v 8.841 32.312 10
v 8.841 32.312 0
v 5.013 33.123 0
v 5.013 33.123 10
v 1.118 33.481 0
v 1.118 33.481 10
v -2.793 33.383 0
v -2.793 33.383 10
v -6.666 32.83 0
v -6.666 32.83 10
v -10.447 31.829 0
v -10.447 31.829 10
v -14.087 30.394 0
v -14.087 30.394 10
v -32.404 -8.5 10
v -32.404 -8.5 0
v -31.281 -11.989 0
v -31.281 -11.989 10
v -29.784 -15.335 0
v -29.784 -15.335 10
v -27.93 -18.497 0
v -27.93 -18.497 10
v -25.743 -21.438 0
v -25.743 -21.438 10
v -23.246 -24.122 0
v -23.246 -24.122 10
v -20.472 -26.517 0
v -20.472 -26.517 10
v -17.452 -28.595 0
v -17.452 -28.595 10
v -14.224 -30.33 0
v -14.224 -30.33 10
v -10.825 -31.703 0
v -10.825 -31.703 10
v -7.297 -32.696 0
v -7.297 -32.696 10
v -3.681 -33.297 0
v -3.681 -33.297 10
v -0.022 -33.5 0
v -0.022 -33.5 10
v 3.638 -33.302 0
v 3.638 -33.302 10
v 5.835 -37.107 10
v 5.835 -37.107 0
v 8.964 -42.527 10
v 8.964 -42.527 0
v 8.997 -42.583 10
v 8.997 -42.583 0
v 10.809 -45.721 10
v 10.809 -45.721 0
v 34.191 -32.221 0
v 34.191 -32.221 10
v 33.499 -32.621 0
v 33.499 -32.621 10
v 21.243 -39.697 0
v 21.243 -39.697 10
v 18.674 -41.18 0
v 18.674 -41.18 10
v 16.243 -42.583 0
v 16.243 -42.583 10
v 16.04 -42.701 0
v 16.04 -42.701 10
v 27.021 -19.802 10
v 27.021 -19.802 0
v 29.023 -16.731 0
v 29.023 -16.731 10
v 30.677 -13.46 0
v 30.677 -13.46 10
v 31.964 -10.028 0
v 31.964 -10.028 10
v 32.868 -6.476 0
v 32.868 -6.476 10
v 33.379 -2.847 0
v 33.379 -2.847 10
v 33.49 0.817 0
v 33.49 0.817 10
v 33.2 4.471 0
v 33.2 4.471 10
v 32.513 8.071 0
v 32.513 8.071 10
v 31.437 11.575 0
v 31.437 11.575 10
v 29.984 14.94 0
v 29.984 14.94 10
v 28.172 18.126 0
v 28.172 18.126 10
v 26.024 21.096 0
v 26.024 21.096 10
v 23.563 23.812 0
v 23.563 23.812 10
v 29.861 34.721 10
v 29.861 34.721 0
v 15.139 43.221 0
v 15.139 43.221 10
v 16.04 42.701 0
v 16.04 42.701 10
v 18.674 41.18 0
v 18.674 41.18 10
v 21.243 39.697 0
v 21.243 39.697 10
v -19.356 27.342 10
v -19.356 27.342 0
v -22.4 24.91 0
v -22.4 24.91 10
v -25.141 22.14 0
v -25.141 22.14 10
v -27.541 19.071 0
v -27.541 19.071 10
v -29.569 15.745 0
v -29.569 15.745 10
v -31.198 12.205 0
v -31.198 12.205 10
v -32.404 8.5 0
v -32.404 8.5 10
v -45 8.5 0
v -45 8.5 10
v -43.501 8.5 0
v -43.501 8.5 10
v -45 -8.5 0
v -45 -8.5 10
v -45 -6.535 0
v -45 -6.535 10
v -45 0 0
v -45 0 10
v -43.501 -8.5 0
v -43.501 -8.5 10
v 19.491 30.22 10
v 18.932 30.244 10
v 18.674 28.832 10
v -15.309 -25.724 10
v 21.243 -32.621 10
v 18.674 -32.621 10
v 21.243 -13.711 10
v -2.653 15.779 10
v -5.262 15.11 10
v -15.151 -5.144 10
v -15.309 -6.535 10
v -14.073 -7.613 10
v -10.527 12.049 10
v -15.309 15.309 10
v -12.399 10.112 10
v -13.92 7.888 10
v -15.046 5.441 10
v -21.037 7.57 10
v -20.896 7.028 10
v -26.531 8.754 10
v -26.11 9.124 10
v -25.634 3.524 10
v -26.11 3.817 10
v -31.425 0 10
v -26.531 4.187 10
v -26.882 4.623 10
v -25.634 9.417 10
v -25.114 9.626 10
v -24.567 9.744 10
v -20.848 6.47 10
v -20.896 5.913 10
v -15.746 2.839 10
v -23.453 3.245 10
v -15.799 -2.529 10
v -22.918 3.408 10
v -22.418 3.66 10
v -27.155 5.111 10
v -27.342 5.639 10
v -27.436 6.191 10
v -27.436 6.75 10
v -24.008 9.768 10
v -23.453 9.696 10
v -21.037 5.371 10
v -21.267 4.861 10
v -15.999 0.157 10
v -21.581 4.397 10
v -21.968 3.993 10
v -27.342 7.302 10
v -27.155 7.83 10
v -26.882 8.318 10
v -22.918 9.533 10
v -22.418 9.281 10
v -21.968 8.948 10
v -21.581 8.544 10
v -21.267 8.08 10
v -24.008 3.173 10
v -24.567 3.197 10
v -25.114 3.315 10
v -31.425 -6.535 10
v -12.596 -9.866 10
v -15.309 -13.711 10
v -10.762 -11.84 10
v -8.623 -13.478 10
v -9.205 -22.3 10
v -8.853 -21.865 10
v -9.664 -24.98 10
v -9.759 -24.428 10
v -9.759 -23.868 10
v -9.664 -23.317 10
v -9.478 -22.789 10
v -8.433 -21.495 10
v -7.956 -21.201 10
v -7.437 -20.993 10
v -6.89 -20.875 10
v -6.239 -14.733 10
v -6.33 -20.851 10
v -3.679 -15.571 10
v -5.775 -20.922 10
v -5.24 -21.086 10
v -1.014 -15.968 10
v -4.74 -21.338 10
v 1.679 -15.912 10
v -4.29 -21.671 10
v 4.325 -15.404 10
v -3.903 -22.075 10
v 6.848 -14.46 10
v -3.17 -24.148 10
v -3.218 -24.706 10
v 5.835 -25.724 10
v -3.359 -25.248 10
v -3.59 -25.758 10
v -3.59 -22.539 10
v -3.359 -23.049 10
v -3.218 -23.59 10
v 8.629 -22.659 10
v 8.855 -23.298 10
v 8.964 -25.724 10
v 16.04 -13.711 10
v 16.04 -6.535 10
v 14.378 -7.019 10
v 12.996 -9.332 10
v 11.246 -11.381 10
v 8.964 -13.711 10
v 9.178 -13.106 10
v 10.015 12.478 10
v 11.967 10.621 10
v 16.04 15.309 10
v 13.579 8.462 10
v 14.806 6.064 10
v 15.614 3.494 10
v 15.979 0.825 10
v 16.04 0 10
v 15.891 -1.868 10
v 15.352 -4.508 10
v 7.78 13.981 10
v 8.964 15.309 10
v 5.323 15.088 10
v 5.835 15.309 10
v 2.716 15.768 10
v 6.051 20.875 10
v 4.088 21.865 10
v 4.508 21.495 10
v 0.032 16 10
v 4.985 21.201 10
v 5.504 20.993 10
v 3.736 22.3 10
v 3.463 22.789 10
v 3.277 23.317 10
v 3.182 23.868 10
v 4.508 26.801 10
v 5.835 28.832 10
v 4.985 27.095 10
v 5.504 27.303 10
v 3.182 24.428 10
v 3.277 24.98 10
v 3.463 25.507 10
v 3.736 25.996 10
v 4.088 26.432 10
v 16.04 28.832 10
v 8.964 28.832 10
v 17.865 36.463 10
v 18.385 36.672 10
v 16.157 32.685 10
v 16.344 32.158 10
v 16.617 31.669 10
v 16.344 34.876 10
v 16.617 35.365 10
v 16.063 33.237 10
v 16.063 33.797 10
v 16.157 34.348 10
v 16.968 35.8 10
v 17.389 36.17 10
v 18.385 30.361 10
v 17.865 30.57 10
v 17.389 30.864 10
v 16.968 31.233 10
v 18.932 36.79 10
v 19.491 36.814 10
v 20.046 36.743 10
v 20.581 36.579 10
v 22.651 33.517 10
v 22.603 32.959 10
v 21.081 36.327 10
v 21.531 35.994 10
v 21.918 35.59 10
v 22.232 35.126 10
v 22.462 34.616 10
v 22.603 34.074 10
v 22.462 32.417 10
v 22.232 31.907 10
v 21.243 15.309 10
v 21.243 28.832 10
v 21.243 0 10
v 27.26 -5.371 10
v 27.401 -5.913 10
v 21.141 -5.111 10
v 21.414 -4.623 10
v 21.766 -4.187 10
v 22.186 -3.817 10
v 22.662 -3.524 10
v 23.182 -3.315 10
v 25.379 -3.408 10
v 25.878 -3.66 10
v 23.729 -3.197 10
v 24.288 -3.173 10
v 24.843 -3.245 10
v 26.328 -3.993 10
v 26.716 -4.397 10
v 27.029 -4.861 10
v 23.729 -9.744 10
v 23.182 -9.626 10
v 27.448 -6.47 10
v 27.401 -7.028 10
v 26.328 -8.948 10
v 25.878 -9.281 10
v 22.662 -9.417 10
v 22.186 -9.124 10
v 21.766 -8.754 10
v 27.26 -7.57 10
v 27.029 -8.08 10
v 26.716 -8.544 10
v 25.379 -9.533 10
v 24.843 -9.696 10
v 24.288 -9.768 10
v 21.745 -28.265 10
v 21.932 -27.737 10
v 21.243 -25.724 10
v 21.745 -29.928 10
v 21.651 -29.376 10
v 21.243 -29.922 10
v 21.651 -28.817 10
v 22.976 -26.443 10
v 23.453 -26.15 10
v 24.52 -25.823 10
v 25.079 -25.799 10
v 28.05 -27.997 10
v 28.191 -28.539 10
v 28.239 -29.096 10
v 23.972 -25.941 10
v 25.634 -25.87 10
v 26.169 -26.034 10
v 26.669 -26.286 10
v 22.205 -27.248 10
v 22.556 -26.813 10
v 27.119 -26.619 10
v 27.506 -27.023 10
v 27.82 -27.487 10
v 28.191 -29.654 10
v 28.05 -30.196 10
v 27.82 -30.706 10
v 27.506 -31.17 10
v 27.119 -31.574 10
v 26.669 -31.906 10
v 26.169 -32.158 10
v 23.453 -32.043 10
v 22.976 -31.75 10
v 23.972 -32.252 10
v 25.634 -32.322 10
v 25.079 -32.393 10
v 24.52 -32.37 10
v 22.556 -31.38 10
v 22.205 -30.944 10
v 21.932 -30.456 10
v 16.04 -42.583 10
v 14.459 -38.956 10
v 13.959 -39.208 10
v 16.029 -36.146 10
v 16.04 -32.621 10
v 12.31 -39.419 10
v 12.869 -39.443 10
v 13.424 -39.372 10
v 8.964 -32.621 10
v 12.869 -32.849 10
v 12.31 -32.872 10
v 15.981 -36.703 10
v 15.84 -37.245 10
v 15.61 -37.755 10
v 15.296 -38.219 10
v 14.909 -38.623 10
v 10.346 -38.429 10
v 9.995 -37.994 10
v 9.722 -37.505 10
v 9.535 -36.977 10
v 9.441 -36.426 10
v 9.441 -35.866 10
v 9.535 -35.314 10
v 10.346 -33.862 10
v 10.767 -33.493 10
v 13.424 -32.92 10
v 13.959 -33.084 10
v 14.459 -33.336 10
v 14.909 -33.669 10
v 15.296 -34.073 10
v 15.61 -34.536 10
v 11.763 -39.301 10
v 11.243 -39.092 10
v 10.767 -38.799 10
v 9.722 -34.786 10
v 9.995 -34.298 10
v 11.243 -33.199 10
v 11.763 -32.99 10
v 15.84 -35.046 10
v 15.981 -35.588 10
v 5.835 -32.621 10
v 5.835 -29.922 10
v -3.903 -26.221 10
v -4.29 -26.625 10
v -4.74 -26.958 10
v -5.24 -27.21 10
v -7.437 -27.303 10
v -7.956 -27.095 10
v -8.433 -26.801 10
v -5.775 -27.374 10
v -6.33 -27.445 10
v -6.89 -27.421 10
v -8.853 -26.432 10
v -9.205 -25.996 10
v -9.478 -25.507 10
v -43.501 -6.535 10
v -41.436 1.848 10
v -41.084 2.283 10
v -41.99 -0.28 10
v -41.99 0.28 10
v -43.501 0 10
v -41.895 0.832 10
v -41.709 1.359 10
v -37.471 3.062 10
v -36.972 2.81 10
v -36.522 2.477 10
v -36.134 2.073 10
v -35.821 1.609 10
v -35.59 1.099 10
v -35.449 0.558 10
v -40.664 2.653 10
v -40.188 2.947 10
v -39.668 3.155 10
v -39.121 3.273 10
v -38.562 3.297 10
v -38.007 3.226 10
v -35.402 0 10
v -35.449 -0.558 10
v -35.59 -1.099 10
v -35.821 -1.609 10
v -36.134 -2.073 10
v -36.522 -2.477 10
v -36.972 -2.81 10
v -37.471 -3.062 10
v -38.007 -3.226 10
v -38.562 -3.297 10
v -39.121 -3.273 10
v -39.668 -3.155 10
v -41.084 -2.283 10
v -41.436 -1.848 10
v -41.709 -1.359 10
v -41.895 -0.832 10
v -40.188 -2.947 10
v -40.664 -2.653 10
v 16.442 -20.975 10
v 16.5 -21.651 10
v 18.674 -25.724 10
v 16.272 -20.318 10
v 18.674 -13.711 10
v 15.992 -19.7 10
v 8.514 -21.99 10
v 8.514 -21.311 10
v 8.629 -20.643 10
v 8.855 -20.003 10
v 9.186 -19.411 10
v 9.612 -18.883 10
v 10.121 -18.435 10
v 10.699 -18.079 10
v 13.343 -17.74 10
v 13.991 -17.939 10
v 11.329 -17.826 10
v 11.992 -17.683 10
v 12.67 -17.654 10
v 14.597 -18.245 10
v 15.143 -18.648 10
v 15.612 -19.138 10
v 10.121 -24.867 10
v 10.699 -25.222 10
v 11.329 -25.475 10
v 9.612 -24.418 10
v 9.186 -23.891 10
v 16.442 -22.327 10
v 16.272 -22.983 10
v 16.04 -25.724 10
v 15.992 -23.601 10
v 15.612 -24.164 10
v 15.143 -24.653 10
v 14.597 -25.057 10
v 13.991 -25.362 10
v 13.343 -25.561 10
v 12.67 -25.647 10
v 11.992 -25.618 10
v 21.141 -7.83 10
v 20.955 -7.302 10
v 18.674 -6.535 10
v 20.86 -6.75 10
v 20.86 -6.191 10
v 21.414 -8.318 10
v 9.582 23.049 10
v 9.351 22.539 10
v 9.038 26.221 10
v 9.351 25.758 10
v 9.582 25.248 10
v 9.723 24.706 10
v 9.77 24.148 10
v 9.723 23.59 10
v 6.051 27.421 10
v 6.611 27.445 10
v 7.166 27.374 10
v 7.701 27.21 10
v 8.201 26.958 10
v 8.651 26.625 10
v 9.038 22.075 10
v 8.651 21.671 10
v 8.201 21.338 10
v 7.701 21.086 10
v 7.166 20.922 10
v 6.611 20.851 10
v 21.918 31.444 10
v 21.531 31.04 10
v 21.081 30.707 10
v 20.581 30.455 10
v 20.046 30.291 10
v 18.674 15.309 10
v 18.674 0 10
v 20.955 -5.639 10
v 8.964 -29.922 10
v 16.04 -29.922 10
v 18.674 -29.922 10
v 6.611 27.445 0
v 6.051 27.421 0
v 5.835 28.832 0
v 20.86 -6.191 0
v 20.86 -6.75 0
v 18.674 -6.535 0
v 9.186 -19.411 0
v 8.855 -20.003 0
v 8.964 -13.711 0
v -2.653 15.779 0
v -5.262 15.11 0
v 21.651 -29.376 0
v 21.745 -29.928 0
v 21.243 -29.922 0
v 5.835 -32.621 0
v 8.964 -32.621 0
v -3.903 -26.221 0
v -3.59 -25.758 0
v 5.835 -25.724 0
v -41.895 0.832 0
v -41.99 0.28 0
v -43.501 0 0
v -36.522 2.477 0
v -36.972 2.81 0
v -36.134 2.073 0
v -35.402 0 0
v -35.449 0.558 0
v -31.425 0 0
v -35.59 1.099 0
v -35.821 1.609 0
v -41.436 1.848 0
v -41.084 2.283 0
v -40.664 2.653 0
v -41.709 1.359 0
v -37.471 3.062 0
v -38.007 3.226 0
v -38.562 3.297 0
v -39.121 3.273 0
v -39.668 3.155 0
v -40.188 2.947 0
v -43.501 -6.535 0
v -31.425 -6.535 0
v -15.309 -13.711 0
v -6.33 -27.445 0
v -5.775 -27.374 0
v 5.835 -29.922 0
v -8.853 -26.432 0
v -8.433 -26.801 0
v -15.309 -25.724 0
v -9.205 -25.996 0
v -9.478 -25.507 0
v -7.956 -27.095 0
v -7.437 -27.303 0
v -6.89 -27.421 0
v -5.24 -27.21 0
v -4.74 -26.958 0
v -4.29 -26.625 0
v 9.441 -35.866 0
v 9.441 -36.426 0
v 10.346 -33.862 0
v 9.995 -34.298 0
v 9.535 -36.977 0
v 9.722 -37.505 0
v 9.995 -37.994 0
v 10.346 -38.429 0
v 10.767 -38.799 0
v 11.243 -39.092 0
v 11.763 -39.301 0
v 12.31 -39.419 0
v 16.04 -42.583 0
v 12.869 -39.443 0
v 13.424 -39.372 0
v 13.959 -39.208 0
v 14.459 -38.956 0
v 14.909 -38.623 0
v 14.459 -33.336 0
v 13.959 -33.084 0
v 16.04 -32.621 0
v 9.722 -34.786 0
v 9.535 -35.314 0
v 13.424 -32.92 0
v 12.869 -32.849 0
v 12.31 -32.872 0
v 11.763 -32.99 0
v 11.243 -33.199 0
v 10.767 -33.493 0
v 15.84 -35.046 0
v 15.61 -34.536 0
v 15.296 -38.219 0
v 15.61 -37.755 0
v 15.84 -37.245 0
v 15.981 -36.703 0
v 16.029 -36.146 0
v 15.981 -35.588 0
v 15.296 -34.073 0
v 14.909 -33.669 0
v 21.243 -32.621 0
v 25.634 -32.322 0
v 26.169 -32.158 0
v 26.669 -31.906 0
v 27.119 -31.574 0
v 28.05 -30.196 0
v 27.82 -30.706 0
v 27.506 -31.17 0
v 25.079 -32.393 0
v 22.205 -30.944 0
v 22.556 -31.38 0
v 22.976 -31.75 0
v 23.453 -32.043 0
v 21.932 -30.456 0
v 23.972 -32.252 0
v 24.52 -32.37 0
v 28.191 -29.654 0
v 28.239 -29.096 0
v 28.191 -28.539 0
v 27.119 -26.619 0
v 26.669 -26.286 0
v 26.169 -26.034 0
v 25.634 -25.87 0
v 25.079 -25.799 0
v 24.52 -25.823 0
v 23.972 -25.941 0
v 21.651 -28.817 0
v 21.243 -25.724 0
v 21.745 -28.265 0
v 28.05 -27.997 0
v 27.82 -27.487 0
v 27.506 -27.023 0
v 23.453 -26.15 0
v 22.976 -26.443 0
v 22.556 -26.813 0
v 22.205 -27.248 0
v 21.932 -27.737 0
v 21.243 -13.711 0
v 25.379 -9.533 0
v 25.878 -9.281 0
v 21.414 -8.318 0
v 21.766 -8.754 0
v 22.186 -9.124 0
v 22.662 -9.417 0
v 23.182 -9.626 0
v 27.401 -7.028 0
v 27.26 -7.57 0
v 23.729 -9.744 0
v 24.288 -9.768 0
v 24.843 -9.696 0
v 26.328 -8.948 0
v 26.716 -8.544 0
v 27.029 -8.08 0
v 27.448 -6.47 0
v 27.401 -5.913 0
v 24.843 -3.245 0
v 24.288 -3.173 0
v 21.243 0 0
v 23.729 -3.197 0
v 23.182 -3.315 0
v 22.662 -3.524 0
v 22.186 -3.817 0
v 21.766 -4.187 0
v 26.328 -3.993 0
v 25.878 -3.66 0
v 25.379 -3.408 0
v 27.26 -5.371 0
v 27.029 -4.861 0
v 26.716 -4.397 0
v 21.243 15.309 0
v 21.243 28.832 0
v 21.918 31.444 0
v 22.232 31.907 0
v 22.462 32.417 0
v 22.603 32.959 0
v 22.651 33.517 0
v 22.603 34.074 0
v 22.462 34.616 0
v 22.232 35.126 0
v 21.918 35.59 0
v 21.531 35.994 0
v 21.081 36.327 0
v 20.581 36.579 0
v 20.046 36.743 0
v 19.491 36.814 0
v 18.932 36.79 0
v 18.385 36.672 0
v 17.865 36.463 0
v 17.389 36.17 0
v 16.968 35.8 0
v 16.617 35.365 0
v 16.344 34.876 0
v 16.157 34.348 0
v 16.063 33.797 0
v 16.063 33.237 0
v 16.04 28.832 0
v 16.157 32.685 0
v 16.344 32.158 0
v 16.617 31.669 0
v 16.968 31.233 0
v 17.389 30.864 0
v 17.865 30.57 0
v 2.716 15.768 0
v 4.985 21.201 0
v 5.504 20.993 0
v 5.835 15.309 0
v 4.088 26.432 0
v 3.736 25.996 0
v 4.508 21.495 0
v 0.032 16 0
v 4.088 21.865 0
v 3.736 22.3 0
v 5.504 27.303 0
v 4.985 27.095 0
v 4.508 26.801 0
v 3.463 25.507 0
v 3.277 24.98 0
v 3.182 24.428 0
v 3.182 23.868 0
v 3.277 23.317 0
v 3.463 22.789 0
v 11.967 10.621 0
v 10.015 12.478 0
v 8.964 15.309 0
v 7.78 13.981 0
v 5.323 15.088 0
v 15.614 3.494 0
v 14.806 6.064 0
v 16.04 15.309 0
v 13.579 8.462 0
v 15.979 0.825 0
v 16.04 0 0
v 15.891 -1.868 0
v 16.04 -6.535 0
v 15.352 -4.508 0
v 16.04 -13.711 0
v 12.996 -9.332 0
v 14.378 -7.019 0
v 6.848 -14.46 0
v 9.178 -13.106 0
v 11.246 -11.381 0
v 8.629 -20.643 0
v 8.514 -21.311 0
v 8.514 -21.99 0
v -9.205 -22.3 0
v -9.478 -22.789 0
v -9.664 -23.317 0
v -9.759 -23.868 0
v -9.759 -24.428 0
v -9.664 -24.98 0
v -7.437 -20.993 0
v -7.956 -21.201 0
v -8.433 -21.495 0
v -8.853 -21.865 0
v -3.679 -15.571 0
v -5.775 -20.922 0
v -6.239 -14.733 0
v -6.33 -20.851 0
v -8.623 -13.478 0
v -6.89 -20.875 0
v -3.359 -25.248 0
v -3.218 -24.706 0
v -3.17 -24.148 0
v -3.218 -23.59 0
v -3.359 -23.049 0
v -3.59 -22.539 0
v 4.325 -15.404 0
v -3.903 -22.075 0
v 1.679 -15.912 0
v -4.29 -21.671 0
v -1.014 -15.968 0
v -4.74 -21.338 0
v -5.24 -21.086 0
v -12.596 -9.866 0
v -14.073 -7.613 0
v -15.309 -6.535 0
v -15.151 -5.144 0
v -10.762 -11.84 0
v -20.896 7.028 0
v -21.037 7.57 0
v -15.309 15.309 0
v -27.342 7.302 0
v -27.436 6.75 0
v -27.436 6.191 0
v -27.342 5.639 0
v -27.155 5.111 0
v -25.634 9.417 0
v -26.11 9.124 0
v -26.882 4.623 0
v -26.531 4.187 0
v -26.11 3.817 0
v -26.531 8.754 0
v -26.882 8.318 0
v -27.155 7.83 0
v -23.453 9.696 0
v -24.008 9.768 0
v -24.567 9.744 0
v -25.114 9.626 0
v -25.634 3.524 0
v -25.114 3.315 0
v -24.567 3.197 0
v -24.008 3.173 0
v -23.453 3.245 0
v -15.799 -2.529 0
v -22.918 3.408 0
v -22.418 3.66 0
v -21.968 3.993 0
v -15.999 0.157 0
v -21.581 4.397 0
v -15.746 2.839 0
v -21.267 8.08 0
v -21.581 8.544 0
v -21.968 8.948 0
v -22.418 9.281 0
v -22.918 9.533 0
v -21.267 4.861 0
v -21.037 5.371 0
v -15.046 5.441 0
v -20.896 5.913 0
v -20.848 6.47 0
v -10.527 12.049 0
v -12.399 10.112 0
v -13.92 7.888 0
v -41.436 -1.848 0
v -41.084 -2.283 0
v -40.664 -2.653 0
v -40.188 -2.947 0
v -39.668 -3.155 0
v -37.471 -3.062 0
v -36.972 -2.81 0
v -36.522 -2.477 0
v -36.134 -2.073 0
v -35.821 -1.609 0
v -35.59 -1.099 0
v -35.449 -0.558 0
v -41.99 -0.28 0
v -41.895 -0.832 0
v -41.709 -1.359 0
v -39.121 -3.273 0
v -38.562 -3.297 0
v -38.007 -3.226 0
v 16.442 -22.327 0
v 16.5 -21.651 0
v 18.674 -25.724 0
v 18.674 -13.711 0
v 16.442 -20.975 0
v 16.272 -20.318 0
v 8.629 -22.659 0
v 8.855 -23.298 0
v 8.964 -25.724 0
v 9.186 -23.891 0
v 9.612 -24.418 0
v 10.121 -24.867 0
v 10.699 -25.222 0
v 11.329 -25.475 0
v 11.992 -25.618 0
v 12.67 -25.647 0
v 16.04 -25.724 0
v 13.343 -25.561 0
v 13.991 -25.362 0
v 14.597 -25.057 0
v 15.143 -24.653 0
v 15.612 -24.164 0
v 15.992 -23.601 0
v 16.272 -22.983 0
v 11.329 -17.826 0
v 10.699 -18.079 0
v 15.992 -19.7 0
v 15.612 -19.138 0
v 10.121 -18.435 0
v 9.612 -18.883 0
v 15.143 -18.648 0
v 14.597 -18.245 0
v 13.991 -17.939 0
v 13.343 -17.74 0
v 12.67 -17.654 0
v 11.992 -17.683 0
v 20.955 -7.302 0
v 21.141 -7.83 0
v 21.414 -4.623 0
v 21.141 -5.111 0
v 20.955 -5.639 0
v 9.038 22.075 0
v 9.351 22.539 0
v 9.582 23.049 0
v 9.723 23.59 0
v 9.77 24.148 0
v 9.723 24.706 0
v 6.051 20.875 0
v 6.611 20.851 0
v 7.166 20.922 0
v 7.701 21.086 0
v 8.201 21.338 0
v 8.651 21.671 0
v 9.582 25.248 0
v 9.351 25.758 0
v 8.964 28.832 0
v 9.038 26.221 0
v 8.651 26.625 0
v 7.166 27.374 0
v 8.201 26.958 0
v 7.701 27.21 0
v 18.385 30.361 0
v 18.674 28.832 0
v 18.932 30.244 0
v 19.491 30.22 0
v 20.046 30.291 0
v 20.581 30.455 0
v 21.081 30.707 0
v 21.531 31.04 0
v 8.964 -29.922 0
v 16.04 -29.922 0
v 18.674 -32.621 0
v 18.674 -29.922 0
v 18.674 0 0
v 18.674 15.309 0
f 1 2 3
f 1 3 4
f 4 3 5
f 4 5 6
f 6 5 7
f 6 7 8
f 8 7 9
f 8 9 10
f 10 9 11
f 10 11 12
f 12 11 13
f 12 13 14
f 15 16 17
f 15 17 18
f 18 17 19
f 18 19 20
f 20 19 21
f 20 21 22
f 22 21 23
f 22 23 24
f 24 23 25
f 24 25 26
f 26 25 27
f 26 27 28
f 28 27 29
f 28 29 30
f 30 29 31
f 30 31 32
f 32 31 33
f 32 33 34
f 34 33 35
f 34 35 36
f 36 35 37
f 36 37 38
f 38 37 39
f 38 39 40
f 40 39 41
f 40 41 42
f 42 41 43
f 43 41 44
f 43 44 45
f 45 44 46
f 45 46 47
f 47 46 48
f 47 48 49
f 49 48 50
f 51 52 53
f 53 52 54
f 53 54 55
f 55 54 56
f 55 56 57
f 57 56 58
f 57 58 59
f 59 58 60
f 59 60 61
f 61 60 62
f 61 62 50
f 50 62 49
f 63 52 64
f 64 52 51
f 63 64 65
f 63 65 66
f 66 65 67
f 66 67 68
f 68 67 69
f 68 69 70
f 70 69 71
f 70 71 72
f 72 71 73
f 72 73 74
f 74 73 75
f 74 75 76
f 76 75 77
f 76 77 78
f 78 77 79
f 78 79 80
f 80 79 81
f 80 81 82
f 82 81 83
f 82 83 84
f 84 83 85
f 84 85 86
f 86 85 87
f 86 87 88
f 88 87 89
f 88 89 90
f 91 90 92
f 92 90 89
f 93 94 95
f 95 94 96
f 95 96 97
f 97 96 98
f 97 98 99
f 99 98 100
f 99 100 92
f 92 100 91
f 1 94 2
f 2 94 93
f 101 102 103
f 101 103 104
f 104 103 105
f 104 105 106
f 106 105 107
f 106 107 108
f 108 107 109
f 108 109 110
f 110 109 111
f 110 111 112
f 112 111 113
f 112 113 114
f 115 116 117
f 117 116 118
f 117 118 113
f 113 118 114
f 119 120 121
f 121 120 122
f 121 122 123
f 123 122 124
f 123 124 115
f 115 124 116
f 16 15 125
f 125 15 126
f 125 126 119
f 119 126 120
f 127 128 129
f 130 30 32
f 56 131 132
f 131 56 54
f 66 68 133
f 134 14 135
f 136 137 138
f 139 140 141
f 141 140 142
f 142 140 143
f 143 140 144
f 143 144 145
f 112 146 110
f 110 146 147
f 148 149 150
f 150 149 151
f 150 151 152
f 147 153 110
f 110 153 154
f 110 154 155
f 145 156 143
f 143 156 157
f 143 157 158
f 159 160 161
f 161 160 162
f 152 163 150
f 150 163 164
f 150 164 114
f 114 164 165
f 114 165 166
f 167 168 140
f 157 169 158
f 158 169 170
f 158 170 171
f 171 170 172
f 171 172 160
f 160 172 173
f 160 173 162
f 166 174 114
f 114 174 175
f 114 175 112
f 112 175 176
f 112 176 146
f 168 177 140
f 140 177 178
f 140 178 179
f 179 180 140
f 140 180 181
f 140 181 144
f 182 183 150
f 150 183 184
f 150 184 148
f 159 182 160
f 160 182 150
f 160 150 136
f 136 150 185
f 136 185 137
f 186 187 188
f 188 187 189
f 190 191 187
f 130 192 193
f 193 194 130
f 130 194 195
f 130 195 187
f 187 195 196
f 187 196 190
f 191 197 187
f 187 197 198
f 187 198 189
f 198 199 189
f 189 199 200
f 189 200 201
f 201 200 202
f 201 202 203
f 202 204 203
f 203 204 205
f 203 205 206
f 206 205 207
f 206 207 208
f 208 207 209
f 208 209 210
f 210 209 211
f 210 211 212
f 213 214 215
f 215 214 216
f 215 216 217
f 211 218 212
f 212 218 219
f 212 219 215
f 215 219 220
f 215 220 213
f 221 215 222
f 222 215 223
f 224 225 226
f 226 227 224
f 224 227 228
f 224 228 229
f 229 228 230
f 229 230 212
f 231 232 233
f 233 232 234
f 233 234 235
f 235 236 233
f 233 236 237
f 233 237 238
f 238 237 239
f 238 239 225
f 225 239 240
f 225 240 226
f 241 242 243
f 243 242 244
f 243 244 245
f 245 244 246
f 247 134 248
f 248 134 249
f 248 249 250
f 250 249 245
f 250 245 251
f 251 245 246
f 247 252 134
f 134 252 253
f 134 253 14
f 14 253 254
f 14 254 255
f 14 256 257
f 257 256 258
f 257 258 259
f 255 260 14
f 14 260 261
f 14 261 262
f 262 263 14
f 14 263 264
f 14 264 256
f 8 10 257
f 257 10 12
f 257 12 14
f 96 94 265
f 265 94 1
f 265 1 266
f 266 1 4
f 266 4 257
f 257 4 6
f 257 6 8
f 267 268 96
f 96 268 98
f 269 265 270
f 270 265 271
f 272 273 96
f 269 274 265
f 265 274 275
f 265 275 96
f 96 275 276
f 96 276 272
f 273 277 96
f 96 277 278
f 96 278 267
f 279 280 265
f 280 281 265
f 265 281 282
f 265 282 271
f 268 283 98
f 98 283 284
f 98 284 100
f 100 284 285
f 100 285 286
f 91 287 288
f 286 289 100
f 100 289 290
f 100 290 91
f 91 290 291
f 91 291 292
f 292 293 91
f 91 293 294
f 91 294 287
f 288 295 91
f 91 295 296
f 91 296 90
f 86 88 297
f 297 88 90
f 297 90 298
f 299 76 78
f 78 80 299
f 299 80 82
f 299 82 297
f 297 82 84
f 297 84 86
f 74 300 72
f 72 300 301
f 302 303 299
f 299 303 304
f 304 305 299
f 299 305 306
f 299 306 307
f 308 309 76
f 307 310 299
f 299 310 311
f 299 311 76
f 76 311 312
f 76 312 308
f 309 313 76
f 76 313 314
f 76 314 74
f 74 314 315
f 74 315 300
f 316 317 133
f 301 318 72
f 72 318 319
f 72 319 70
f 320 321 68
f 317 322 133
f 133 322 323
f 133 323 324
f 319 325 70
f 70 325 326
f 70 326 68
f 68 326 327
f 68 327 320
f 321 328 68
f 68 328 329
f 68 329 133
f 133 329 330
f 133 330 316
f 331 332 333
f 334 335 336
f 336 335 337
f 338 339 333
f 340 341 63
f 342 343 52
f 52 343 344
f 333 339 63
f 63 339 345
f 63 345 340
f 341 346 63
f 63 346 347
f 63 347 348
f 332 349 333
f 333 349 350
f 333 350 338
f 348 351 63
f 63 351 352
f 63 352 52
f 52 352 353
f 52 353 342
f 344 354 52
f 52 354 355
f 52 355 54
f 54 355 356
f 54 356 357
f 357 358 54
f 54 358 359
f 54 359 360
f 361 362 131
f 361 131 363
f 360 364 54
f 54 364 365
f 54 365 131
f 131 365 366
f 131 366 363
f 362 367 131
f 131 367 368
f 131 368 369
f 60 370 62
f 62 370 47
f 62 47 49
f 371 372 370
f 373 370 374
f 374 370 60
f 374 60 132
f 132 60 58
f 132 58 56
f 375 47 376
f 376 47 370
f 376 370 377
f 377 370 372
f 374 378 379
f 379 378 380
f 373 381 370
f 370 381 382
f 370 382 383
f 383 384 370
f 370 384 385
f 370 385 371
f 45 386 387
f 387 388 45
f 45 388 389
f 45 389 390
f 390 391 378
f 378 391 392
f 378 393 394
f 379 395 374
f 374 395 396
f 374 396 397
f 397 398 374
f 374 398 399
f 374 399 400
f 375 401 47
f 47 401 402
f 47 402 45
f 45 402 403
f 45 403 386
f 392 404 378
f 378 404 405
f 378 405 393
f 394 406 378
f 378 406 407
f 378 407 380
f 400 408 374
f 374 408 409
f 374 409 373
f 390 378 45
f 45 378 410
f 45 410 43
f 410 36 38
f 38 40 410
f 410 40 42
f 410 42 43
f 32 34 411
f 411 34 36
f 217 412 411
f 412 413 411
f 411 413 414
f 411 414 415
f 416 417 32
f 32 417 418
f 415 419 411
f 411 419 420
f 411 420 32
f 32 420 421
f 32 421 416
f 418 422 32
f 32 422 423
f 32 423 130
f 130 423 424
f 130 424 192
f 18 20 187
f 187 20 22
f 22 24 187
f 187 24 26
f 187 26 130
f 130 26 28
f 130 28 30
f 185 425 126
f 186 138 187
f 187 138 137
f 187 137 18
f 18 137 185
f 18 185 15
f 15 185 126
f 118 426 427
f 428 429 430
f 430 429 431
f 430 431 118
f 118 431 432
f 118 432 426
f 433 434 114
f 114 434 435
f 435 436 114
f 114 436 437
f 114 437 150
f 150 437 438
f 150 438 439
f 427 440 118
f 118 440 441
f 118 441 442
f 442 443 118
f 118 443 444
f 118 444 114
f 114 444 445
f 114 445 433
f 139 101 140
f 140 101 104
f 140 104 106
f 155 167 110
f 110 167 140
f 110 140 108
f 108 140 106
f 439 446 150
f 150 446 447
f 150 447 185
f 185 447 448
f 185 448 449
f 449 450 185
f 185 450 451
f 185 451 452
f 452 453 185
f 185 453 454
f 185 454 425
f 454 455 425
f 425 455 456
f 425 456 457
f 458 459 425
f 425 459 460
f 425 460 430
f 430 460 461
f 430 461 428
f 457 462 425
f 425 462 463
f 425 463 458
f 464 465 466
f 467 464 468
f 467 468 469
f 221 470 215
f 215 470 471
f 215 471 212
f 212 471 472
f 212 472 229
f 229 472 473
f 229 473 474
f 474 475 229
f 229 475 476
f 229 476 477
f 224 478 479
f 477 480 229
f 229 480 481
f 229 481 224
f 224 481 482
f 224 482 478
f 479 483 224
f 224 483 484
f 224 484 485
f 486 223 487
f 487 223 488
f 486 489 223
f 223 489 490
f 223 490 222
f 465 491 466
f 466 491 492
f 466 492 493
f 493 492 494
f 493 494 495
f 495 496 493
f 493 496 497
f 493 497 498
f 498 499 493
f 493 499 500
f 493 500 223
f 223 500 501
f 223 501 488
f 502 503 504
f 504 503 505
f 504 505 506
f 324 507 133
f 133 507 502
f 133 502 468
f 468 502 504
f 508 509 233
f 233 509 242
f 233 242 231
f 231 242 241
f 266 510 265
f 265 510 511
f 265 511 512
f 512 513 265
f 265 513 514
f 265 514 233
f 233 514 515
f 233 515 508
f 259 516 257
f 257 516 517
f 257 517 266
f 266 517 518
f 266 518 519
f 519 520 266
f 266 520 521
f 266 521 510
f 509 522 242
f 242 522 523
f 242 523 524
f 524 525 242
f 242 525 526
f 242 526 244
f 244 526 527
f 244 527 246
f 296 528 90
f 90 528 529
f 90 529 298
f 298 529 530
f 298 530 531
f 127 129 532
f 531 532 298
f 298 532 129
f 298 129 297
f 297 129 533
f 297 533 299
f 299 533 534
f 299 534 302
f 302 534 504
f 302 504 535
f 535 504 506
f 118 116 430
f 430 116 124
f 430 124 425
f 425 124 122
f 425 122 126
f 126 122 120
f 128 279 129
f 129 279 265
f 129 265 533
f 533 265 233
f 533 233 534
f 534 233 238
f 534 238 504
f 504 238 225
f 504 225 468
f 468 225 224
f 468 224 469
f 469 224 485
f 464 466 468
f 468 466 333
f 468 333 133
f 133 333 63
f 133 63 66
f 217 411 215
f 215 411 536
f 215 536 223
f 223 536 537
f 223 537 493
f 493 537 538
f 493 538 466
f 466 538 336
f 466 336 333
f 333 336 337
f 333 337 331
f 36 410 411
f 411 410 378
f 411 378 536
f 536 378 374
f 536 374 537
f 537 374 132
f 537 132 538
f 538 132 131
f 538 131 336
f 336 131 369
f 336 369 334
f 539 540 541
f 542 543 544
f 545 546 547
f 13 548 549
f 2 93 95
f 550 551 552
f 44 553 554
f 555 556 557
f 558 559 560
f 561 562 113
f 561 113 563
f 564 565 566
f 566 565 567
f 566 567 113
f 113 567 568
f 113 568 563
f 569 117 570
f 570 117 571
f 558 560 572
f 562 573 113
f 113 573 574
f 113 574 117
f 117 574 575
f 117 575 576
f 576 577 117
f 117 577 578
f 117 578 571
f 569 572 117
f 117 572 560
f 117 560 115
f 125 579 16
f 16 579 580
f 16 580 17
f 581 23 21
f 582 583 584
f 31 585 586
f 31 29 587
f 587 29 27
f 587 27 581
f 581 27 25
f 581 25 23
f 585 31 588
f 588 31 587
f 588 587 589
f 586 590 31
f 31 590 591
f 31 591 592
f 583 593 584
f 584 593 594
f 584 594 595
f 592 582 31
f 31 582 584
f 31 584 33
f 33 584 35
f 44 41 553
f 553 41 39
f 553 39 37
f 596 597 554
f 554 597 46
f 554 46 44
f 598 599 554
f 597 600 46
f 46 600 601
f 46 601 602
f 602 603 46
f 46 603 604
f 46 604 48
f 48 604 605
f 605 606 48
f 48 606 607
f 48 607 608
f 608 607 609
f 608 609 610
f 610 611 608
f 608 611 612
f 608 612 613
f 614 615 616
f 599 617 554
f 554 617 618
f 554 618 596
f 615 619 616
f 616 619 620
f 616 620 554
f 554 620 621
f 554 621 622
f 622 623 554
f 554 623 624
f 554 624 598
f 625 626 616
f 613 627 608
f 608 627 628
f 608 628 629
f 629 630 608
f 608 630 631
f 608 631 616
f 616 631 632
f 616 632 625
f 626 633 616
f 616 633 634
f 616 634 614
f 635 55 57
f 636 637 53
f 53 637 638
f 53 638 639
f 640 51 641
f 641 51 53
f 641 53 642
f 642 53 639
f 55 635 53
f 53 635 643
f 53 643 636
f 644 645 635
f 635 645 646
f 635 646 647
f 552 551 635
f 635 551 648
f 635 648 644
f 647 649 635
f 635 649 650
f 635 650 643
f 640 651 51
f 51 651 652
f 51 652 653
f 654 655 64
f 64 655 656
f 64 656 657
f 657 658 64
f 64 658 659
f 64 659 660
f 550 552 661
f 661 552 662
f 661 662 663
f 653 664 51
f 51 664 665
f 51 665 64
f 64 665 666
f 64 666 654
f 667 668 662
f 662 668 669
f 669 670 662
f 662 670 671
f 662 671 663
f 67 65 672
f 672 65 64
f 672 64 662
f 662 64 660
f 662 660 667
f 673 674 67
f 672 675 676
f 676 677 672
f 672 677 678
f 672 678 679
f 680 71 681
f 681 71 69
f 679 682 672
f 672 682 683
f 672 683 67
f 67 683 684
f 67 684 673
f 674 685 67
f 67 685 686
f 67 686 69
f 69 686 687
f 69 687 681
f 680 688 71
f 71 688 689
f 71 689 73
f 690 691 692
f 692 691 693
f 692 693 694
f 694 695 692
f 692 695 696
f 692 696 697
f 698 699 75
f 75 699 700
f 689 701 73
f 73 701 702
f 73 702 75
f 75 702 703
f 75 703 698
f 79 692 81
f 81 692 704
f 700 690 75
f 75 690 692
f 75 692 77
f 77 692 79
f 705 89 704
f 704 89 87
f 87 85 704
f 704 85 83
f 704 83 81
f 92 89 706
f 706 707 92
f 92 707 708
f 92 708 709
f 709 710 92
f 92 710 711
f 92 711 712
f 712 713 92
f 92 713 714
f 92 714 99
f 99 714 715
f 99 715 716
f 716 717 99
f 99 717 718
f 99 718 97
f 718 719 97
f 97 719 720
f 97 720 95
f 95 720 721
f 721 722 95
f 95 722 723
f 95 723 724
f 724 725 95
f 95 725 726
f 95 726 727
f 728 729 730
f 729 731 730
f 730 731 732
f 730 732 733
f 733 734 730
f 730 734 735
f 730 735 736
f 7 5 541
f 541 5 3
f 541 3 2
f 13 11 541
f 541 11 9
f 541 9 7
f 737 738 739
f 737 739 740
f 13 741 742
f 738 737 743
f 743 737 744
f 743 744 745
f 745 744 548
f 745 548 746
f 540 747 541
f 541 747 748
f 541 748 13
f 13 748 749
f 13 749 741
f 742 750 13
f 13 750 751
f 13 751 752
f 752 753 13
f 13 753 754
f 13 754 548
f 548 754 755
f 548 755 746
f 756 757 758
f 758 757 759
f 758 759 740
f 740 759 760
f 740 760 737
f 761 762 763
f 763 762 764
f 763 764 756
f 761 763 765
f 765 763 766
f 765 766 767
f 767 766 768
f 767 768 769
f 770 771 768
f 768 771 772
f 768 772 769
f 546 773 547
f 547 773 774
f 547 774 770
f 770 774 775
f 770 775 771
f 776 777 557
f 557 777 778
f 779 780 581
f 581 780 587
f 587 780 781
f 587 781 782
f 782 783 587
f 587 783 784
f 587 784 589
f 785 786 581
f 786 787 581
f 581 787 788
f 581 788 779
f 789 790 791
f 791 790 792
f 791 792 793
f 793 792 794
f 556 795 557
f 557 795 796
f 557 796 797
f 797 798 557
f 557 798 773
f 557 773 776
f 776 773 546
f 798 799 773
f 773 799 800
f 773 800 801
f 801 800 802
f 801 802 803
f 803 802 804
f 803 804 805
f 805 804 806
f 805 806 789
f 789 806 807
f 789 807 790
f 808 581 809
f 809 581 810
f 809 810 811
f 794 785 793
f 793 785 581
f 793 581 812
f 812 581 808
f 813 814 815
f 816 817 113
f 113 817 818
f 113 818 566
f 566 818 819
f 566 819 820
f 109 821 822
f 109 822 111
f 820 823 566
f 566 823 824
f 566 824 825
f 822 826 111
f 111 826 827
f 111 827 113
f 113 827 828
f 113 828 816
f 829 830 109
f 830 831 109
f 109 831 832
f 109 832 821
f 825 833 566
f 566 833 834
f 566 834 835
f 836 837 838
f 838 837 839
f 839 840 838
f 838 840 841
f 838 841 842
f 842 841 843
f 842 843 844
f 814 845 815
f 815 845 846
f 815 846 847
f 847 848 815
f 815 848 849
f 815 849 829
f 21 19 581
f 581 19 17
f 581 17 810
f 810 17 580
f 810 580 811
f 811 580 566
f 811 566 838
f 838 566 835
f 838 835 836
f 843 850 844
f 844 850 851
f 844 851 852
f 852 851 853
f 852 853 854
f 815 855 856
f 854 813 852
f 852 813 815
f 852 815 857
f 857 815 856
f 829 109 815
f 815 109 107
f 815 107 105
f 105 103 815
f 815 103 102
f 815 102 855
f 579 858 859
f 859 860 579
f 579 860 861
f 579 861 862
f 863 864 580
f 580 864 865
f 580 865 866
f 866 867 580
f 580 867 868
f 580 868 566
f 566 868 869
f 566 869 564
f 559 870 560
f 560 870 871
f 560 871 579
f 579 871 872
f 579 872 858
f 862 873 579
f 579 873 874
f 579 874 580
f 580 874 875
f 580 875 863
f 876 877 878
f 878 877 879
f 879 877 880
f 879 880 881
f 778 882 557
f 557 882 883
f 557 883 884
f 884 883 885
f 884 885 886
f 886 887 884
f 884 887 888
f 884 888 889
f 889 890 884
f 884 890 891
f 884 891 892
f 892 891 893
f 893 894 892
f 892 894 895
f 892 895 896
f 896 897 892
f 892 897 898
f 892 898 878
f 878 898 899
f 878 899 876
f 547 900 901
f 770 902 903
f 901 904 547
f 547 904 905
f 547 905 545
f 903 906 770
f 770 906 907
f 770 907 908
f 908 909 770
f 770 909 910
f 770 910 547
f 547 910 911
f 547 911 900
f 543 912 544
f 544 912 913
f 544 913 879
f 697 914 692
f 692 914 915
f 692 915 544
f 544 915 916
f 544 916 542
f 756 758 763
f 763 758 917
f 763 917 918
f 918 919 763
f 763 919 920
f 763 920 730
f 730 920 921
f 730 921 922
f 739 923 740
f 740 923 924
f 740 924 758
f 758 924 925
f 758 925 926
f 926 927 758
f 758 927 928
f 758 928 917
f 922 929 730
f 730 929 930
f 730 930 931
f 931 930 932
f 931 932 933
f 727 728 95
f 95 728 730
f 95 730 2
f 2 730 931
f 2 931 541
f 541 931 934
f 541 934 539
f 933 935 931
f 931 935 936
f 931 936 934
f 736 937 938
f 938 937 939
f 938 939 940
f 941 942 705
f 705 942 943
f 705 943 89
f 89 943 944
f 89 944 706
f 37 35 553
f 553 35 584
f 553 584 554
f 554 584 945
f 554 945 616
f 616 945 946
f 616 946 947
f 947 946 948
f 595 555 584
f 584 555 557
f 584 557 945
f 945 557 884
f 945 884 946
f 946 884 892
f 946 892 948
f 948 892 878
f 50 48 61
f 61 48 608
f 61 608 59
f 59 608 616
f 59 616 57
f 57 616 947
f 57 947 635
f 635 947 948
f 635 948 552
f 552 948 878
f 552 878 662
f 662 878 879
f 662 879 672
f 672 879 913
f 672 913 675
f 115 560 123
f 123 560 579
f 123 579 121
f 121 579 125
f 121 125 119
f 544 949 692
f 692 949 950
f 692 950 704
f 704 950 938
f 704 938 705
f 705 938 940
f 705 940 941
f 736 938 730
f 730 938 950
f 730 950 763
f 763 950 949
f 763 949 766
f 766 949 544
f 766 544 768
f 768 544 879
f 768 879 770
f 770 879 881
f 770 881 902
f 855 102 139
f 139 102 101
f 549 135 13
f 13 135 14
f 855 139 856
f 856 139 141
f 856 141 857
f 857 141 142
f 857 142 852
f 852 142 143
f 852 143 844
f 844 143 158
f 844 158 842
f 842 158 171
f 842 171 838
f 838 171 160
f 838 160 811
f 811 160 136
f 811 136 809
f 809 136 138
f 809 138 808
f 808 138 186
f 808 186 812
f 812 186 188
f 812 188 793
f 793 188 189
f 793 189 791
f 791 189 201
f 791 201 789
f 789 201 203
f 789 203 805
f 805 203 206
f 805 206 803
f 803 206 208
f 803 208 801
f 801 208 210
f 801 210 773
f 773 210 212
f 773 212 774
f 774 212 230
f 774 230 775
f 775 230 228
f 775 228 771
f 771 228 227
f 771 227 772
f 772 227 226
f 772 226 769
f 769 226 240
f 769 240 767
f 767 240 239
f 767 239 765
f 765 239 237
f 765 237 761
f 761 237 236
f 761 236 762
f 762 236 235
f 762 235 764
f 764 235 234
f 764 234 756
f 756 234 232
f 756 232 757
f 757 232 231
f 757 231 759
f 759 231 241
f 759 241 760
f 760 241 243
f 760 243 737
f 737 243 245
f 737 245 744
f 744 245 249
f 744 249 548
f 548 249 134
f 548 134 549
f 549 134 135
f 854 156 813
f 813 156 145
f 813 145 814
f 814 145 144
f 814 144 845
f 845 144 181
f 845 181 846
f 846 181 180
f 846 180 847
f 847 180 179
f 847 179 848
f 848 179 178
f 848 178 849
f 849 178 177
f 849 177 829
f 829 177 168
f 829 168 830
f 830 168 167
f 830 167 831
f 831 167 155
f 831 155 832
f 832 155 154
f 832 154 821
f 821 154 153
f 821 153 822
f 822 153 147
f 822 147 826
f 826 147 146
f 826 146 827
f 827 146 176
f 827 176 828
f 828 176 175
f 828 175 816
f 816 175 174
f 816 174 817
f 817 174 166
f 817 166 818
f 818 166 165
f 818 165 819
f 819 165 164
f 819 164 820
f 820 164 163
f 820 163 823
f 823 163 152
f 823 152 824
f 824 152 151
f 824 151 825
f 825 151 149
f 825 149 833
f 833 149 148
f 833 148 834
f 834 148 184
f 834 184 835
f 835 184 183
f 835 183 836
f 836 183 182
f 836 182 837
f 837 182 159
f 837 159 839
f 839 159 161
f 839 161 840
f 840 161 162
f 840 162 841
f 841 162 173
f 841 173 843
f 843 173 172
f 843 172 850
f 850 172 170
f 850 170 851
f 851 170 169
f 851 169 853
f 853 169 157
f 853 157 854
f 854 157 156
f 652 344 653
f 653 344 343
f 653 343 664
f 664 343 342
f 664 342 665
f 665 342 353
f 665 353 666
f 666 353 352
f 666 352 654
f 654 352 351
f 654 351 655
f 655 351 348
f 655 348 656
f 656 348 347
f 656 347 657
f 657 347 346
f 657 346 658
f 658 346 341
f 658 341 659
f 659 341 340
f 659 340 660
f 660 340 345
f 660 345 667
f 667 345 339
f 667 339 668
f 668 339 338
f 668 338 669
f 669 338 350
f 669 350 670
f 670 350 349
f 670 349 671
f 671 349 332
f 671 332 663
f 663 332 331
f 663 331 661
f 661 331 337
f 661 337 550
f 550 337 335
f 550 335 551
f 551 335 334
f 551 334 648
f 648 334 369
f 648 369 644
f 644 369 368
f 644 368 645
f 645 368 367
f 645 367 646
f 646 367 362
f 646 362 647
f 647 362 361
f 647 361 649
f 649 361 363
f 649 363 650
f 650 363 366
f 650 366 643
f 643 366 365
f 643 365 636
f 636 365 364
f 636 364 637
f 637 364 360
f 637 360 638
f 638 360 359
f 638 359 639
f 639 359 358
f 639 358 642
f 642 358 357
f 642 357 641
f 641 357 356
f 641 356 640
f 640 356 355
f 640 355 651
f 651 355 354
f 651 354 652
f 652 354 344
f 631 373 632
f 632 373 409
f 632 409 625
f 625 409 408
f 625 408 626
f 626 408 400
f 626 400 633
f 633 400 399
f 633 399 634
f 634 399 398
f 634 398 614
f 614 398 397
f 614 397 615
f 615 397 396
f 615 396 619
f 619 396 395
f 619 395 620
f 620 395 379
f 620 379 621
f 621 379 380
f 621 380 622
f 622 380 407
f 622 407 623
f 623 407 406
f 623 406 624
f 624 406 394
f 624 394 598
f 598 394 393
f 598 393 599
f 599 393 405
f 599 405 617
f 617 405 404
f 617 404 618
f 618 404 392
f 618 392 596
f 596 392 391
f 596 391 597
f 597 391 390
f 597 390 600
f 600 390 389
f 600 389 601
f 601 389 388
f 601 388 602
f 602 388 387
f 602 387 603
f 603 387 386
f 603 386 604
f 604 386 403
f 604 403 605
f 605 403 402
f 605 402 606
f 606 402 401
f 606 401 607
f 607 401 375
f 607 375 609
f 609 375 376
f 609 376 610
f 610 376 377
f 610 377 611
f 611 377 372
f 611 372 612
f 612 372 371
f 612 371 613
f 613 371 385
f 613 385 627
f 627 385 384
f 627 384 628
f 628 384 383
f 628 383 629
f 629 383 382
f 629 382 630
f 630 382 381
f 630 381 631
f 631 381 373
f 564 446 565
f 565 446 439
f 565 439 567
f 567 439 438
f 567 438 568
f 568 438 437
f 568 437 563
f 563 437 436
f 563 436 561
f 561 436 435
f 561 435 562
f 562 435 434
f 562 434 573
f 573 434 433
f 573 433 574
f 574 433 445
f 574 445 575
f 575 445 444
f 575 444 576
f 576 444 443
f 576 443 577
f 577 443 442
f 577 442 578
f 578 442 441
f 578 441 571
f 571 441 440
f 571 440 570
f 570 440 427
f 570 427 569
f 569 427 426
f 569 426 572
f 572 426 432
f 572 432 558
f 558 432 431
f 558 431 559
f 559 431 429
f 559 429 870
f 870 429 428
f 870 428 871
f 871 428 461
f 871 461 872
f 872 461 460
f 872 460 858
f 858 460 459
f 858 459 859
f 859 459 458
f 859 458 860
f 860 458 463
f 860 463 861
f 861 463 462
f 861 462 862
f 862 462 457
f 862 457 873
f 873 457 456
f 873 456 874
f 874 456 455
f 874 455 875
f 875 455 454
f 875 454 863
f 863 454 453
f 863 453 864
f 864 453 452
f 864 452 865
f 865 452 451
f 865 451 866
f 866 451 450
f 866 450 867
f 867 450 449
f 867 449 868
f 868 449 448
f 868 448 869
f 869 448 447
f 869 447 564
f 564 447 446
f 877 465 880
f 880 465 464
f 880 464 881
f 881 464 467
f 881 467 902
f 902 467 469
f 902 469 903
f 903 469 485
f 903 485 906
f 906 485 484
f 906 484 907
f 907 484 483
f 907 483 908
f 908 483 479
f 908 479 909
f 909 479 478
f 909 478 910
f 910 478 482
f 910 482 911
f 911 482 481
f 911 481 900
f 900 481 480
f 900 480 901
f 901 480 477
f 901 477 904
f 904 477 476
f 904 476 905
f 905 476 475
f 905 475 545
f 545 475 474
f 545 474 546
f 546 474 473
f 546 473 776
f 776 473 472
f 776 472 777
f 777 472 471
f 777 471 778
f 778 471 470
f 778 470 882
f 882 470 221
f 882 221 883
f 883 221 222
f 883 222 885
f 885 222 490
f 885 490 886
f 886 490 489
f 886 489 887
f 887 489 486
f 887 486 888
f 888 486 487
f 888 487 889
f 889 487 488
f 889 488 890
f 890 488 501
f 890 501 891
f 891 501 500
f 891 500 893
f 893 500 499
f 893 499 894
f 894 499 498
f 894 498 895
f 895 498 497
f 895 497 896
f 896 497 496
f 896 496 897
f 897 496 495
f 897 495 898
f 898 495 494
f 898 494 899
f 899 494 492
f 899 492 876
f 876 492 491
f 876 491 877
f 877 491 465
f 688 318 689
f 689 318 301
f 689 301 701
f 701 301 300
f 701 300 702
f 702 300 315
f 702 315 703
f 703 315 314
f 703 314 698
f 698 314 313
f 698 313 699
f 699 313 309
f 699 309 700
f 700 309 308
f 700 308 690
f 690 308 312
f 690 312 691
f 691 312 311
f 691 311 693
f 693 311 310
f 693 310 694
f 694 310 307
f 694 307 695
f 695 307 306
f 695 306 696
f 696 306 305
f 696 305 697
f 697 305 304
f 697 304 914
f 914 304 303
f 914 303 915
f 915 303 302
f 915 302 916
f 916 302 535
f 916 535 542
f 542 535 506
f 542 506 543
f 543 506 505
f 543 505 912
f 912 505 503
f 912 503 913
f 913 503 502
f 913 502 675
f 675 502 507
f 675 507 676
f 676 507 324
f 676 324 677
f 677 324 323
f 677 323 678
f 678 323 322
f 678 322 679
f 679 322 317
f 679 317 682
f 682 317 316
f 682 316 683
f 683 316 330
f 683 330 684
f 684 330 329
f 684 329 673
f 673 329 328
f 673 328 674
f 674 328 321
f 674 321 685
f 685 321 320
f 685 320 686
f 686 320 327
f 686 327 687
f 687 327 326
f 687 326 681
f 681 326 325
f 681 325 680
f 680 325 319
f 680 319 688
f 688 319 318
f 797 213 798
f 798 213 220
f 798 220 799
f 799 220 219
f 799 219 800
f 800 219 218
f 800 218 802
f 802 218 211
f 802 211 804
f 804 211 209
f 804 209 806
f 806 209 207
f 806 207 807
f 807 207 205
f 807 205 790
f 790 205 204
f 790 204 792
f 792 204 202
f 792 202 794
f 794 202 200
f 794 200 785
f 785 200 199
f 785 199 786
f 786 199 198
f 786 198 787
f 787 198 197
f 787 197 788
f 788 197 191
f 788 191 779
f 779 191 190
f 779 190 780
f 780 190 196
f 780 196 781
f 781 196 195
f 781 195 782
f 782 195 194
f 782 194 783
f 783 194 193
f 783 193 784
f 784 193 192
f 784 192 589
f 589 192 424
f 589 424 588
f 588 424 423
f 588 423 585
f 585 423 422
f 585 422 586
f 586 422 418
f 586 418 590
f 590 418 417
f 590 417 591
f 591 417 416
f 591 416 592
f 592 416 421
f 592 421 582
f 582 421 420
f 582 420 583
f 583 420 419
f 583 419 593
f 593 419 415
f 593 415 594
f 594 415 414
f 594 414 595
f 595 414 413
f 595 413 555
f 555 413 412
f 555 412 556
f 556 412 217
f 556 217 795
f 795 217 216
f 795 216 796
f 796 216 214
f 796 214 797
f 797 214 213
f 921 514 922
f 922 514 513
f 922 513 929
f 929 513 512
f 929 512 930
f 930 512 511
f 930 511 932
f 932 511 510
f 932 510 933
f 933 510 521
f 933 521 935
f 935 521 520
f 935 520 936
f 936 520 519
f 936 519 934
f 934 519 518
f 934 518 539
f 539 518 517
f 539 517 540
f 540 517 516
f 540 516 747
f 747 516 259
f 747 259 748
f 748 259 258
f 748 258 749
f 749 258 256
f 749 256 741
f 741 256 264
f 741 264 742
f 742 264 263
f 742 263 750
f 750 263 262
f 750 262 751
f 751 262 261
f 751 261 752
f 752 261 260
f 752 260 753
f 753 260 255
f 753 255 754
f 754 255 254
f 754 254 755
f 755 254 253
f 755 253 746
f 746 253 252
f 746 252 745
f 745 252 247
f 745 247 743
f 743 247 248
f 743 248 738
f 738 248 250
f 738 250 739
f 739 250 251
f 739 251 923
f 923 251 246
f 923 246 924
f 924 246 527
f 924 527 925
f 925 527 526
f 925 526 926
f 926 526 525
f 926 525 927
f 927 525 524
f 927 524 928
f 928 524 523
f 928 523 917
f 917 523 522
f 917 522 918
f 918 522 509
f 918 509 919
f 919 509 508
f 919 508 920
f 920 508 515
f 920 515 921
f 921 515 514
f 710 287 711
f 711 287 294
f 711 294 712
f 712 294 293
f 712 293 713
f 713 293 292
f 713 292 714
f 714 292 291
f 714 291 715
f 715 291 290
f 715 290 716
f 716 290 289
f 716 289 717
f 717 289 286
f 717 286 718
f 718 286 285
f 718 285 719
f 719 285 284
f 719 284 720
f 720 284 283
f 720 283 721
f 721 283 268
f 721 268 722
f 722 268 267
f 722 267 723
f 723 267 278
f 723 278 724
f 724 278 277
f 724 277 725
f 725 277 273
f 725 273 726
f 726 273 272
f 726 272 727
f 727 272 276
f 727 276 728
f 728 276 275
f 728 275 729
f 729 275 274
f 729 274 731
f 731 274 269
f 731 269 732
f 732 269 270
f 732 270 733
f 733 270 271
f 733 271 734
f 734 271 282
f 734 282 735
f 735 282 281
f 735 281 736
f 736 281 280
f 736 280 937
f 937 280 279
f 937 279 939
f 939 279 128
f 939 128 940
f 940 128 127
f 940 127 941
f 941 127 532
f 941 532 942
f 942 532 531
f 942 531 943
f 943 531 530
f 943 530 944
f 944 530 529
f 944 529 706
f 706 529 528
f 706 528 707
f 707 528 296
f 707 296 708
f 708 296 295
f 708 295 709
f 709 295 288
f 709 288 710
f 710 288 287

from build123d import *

# Parameters (mm, degrees)
SALIENTE_EXTRUIR3_DEPTH = 10
CROQUIS2_R              = 16
CROQUIS2_R_2            = 4
CROQUIS2_R_3            = 3.3
CORTAR_EXTRUIR1_DEPTH   = 65.926288457


with BuildPart() as part:
    # Croquis1 → Saliente-Extruir3 (new body)
    with BuildSketch(Plane.XY):
        with BuildLine():
            Line((-45, -8.5), (-32.403703492, -8.5))
            ThreePointArc((-32.403703492, -8.5), (-33.5, 0), (-32.403703492, 8.5))
            Line((-32.403703492, 8.5), (-45, 8.5))
            Line((-45, 8.5), (-45, -8.5))
        make_face()
        with BuildLine():
            ThreePointArc((-32.403703492, 8.5), (-33.5, 0), (-32.403703492, -8.5))
            Line((-32.403703492, -8.5), (-30, -8.5))
            Line((-30, -8.5), (-30, 8.5))
            Line((-30, 8.5), (-32.403703492, 8.5))
        make_face()
        with BuildLine():
            Line((3.308657049, -32.730762114), (26.691342951, -19.230762114))
            Line((26.691342951, -19.230762114), (27.021052668, -19.801836095))
            ThreePointArc((27.021052668, -19.801836095), (31.839089688, -10.417406962), (33.5, 0))
            ThreePointArc((33.5, 0), (30.916118508, 12.901302895), (23.563067678, 23.812430401))
            Line((23.563067678, 23.812430401), (22.361215932, 21.730762114))
            Line((22.361215932, 21.730762114), (7.638784068, 30.230762114))
            Line((7.638784068, 30.230762114), (8.840635814, 32.312430401))
            ThreePointArc((8.840635814, 32.312430401), (-16.75, 29.011851027), (-32.403703492, 8.5))
            Line((-32.403703492, 8.5), (-30, 8.5))
            Line((-30, 8.5), (-30, -8.5))
            Line((-30, -8.5), (-32.403703492, -8.5))
            ThreePointArc((-32.403703492, -8.5), (-18.9906271, -27.597211496), (3.638366766, -33.301836095))
            Line((3.638366766, -33.301836095), (3.308657049, -32.730762114))
        make_face()
        with BuildLine():
            Line((22.361215932, 21.730762114), (23.563067678, 23.812430401))
            ThreePointArc((23.563067678, 23.812430401), (16.75, 29.011851027), (8.840635814, 32.312430401))
            Line((8.840635814, 32.312430401), (7.638784068, 30.230762114))
            Line((7.638784068, 30.230762114), (22.361215932, 21.730762114))
        make_face()
        with BuildLine():
            ThreePointArc((8.840635814, 32.312430401), (16.75, 29.011851027), (23.563067678, 23.812430401))
            Line((23.563067678, 23.812430401), (29.861215932, 34.72114317))
            Line((29.861215932, 34.72114317), (15.138784068, 43.22114317))
            Line((15.138784068, 43.22114317), (8.840635814, 32.312430401))
        make_face()
        with BuildLine():
            Line((27.021052668, -19.801836095), (26.691342951, -19.230762114))
            Line((26.691342951, -19.230762114), (3.308657049, -32.730762114))
            Line((3.308657049, -32.730762114), (3.638366766, -33.301836095))
            ThreePointArc((3.638366766, -33.301836095), (16.75, -29.011851027), (27.021052668, -19.801836095))
        make_face()
        with BuildLine():
            Line((34.191342951, -32.22114317), (27.021052668, -19.801836095))
            ThreePointArc((27.021052668, -19.801836095), (16.75, -29.011851027), (3.638366766, -33.301836095))
            Line((3.638366766, -33.301836095), (10.808657049, -45.72114317))
            Line((10.808657049, -45.72114317), (34.191342951, -32.22114317))
        make_face()
    extrude(amount=SALIENTE_EXTRUIR3_DEPTH)

    # Croquis2 → Cortar-Extruir1 (cut, through all)
    with BuildSketch(Plane.XY.offset(10)):
        Circle(CROQUIS2_R)
        with Locations((12.5, -21.650635095)):
            Circle(CROQUIS2_R_2)
        with Locations((24.148145657, -6.470476128)):
            Circle(CROQUIS2_R_3)
        with Locations((-6.470476128, -24.148145657)):
            Circle(CROQUIS2_R_3)
        with Locations((6.470476128, 24.148145657)):
            Circle(CROQUIS2_R_3)
        with Locations((-24.148145657, 6.470476128)):
            Circle(CROQUIS2_R_3)
        with Locations((24.947836968, -29.091113341)):
            Circle(CROQUIS2_R_3)
        with Locations((12.719724694, -36.151017254)):
            Circle(CROQUIS2_R_3)
        Polygon((-19.486906027, 27.568394577), (-10.486906027, 11.979937309), (-5.213138932, 15.024748161), (-14.213138932, 30.613205429), align=None)
        with Locations((-38.701851746, 0)):
            Circle(CROQUIS2_R_3)
        with Locations((19.350925873, 33.516786786)):
            Circle(CROQUIS2_R_3)
    extrude(amount=-CORTAR_EXTRUIR1_DEPTH, mode=Mode.SUBTRACT)


solid = part.part
